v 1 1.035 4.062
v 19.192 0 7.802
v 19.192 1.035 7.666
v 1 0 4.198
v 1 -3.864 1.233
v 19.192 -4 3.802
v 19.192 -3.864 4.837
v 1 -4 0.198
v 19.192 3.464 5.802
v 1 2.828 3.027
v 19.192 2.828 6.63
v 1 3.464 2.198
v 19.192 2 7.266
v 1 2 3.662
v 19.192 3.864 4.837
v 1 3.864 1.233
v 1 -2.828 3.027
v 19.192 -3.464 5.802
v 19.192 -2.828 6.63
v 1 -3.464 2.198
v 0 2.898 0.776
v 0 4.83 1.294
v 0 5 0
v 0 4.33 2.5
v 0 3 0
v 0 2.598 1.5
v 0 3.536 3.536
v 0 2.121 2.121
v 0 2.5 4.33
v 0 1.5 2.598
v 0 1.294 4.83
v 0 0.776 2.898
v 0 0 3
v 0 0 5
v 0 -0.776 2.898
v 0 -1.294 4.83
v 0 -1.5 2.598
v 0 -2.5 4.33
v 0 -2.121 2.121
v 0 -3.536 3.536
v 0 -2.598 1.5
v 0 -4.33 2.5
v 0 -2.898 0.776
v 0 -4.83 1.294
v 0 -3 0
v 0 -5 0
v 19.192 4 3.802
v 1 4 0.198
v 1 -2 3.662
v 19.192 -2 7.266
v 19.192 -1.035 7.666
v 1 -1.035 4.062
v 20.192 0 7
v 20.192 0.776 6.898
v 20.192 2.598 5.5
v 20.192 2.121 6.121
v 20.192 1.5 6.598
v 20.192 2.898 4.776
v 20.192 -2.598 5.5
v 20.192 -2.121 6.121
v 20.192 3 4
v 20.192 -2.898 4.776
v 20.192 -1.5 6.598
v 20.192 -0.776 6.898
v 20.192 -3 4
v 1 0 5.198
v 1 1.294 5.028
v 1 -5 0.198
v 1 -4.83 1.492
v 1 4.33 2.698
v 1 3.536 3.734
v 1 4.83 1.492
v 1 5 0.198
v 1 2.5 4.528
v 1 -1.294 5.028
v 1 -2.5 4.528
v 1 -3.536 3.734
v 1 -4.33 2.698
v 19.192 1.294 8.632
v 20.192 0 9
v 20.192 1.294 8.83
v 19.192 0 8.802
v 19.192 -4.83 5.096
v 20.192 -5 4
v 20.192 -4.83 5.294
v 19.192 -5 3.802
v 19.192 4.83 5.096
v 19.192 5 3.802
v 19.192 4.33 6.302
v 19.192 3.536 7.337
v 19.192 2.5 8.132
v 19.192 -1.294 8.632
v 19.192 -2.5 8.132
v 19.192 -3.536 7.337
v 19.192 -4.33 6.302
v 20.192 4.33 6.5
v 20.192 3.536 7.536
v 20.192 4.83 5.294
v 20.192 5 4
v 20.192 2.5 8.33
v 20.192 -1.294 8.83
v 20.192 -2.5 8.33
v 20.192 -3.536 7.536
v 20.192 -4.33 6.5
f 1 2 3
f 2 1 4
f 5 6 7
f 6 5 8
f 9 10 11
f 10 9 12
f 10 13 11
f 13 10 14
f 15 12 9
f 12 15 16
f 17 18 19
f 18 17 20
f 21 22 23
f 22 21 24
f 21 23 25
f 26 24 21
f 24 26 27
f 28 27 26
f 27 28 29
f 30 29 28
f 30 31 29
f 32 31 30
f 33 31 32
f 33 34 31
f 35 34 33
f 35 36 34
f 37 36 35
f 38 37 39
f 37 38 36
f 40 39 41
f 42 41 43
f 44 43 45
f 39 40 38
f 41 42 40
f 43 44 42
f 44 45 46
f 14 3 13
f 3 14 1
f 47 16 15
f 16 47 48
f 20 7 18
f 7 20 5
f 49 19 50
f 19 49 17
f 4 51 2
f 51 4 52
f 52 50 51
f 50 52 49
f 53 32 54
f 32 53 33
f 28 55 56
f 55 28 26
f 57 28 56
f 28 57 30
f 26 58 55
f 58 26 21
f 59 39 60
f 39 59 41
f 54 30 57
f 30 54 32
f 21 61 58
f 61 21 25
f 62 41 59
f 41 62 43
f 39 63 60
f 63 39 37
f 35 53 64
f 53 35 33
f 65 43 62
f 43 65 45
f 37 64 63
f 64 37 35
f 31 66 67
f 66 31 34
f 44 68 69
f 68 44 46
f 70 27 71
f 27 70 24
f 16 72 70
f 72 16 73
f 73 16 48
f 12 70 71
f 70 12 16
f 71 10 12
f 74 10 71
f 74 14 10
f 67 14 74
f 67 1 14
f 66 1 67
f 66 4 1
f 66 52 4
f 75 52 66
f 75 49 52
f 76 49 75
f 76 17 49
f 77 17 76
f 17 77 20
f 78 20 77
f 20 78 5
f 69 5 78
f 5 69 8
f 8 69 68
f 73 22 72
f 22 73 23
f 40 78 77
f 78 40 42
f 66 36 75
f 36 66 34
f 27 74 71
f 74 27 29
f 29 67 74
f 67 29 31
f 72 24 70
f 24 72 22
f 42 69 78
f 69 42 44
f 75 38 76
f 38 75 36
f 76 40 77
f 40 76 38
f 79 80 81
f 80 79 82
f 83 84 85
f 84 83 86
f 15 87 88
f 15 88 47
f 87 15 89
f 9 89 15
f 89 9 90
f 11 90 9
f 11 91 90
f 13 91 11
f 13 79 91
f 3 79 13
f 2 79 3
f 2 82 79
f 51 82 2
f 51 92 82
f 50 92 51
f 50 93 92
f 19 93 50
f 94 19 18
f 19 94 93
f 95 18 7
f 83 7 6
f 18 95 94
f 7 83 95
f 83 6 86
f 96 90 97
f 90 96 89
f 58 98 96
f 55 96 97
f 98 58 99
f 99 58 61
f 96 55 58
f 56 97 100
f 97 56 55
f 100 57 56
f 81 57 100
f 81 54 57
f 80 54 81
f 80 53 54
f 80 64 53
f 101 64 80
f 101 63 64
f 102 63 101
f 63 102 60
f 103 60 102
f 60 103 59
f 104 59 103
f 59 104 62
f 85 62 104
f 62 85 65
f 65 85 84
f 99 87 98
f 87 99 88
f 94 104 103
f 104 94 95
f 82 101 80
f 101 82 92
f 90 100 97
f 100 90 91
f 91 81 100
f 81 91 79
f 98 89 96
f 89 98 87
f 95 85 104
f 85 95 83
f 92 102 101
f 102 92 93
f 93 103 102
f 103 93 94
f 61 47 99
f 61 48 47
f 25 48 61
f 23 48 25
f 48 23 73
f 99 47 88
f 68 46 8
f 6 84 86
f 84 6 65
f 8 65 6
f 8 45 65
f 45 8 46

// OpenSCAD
// file: ../build_environments.scad
// build_environments.scad: modules to build level sections
//

module pool(diameter=10.0, wall_height=2.0, step_width=3.0, connections=[])
{
    difference() {
        union() {
        difference() {
            cylinder(h=0.5,r1=diameter+step_width,r2=diameter+step_width,$fn=48);
            translate([0,0,-0.1])
                cylinder(h=0.7,r1=diameter,r2=diameter,$fn=48);
        }
        difference() {
            cylinder(h=wall_height,r1=diameter+step_width+1.0,r2=diameter+step_width+1.0,$fn=48);
            translate([0,0,-0.1])
                cylinder(h=wall_height+0.2,r1=diameter+step_width,r2=diameter+step_width,$fn=48);
        }
        }
    
        for (c = connections)
        {
            rotate([0,90,0]) {
                angle = atan2(c[1],c[0]);
                rotate([-angle,0,0]) {
                    cylinder(h=diameter+5.0,r1=c[2],r2=c[2],$fn=48);
                }
            }
        }
    }
}

module straight(length=10.0, width=2.0, dy1=0.0, dy2=0.0, dz=0.0)
{
    dims = [0, 0, 0, 0, 0, (dz/length)];
    matrix = [
        [ 1, dims[0], dims[1], 0 ],
        [ dims[2], 1, dims[4], 0 ],
        [ dims[5], dims[3], 1, 0 ],
        [ 0, 0, 0, 1 ]
    ];
    multmatrix(matrix)
    difference() {
        translate([dy1,0,0])
        union() {
            rotate([0,90,0]) {
                difference() {
                    cylinder(h=(length-dy1-dy2),r1=width+1.0,r2=width+1.0,$fn=24);
                    translate([0,0,-0.1])
                        cylinder(h=(length-dy1-dy2+0.2),r1=width,r2=width,$fn=24);
                }
                difference() {
                    cylinder(h=1.0,r1=width+2.0,r2=width+2.0,$fn=24);
                    translate([0,0,-0.1])
                        cylinder(h=1.2,r1=width,r2=width,$fn=24);
                }
                translate([0,0,(length-dy1-dy2)-1.0]) {
                    difference() {
                        cylinder(h=1.0,r1=width+2.0,r2=width+2.0,$fn=24);
                        translate([0,0,-0.1])
                            cylinder(h=1.2,r1=width,r2=width,$fn=24);
                    }
                }
            }
        }
        translate([0,0,-(2*width+4.0)/2])
            cube([3*length,3*length,2*width+4.0],center=true);
    }
}

module curve(p0=[0,0], center=[0,0], dir=1, angle=0.0, width=2.0)
{
    radius = sqrt((p0[0]-center[0])*(p0[0]-center[0]) + (p0[1]-center[1])*(p0[1]-center[1]));
    if (dir == 0) {
        difference() {
            rotate([0,0,-90])
            difference() {
                rotate_extrude(angle = angle, convexity = 10, $fn=32)
                    translate([radius, 0, 0])
                        circle(r = width+1.0,$fn=24);
                rotate([0,0,-1.0])
                    rotate_extrude(angle = angle+2.0, convexity = 10, $fn=32)
                        translate([radius, 0, 0])
                            circle(r = width,$fn=24);
            }
            translate([0,0,-(2*width+4.0)/2])
                cube([5*radius,5*radius,2*width+4.0],center=true);
        }
    }
    else {
        difference() {
            rotate([0,0,90])
            difference() {
                rotate_extrude(angle = -angle, convexity = 10, $fn=32)
                    translate([radius, 0, 0])
                        circle(r = width+1.0,$fn=24);
                rotate([0,0,1.0])
                    rotate_extrude(angle = -angle-2.0, convexity = 10, $fn=32)
                        translate([radius, 0, 0])
                            circle(r = width,$fn=24);
            }
            translate([0,0,-(2*width+4.0)/2])
                cube([5*radius,5*radius,2*width+4.0],center=true);
        }
    }

}

// test pool
//pool(diameter=12.0000, wall_height=3.0000, step_width=3.0000, connections=[[0.0000,-26.0000,2.0000], [23.6074,0.0000,2.0000]]);

// test straight, slope
//straight(length=26.0000, width=2.0000, dy1=11.8322, dy2=6.7082, dz=0.0000);
//straight(length=29.1549, width=12.0000, dy1=0.0000, dy2=0.0000, dz=-15.0000);

// test curve
//curve(p0=[23.6074, 0.0000], center=[23.6074, 5.0000], dir=0, angle=60.1011, width=2.0000);
//curve(p0=[33.6426, 12.4219], center=[37.9771, 9.9295], dir=1, angle=120.4627, width=2.0000);
// main file
use <../build_environments.scad>;
straight(length=20.1920, width=3.0000, dy1=0.0000, dy2=0.0000, dz=4.0000);
